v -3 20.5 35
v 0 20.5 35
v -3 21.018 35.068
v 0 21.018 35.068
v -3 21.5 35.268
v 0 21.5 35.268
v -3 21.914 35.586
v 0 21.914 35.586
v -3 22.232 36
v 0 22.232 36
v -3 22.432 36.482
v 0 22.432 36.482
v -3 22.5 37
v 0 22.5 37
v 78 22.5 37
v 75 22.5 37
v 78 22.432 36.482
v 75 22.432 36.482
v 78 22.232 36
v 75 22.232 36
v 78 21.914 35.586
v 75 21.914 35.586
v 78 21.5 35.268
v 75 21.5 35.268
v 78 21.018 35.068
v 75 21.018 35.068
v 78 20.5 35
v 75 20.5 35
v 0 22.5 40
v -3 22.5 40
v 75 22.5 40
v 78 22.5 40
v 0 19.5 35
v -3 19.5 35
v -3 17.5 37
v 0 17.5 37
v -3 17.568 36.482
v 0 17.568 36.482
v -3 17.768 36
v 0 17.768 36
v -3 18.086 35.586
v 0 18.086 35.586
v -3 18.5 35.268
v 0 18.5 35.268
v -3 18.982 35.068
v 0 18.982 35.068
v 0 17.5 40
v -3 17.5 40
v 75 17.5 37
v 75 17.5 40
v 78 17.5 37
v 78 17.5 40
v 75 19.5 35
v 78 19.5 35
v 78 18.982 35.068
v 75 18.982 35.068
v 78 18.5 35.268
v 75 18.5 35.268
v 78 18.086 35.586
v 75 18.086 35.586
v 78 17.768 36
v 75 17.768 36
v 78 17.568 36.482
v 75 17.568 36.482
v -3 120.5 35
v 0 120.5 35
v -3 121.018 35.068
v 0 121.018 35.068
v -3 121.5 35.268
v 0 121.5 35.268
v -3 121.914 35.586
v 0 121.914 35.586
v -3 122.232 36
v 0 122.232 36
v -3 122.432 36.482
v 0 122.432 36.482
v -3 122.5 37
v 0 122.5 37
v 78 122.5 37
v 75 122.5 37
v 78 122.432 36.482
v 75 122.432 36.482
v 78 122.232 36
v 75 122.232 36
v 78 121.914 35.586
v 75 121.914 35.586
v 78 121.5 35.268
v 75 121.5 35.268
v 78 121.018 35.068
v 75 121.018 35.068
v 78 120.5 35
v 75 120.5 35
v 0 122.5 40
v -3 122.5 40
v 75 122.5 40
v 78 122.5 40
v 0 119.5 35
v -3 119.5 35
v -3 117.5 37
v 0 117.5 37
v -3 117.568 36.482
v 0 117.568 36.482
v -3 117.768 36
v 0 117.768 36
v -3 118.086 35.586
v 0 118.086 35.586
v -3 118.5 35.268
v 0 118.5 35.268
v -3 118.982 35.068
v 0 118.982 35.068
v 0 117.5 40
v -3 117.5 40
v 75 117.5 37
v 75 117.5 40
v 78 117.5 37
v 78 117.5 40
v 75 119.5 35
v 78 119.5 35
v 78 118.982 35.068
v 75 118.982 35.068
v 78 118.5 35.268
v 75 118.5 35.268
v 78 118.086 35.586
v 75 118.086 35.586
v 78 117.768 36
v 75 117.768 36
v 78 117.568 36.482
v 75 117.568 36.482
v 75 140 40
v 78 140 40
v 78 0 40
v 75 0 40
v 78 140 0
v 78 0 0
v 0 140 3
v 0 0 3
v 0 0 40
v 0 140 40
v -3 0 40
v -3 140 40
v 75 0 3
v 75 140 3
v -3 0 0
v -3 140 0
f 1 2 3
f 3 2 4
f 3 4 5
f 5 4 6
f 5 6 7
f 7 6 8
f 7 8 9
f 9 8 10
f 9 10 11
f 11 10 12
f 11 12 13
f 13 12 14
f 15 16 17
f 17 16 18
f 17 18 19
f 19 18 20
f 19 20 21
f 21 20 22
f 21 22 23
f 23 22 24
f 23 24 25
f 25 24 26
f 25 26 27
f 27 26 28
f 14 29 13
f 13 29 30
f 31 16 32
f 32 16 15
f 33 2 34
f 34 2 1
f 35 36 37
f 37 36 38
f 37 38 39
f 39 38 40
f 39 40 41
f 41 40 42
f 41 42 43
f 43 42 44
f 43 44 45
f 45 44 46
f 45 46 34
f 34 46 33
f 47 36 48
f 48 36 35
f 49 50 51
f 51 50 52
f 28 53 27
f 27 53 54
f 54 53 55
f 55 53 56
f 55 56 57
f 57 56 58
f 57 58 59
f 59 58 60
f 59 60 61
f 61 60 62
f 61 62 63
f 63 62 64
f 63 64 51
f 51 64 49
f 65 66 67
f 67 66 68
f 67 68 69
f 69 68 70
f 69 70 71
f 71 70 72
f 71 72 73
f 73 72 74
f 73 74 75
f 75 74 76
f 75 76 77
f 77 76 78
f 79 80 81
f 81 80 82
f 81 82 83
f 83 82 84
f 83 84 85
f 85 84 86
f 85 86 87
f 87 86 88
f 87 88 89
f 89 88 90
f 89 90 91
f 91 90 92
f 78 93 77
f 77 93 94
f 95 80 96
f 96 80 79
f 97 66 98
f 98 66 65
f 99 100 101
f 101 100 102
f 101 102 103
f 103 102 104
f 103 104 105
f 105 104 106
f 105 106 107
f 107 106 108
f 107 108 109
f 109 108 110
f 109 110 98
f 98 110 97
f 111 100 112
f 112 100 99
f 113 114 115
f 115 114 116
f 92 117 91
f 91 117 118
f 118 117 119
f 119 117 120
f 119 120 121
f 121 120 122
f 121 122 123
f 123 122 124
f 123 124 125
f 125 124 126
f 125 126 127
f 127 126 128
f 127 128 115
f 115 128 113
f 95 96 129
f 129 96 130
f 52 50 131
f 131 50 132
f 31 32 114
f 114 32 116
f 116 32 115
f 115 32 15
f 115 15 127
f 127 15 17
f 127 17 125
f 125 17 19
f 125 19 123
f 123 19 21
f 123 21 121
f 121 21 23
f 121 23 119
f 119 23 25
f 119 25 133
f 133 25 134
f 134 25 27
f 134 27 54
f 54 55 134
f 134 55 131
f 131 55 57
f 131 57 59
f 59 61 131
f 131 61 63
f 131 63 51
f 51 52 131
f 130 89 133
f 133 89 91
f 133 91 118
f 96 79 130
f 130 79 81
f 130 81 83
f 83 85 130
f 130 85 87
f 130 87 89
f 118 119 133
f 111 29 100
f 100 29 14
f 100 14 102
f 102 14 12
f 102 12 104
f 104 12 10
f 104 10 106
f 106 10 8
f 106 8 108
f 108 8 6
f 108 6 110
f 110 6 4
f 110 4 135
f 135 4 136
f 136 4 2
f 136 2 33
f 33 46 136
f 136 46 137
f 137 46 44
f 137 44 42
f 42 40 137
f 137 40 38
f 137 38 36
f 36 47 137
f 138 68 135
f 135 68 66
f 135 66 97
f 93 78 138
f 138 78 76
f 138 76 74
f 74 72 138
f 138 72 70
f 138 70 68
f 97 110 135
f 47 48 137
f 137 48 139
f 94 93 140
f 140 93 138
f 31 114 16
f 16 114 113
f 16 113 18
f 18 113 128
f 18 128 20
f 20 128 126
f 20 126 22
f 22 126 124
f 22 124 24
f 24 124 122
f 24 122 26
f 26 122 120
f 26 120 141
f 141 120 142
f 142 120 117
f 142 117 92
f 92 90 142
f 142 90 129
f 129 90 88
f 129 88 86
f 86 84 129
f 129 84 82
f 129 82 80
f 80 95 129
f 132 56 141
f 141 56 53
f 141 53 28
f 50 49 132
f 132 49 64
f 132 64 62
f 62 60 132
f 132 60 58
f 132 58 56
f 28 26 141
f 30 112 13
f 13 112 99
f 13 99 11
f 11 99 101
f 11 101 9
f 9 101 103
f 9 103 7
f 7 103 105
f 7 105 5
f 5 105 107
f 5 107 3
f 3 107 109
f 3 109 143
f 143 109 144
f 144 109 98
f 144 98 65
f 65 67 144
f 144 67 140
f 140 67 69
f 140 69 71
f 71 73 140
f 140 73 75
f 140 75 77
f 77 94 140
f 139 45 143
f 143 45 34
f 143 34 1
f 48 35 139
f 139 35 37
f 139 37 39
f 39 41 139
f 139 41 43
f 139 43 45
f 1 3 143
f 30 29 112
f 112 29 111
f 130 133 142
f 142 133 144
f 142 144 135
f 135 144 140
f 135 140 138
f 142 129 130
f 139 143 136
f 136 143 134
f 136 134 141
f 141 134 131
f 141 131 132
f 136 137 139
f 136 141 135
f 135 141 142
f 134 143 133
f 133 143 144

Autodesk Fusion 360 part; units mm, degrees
sketch "Sketch1" plane through (0, 0, 0) normal (0, 0, 1) x (1, 0, 0)
  line L0 (0, 0) -> (75, 0)
  line L1 (75, 0) -> (75, 140)
  line L2 (75, 140) -> (0, 140)
  line L3 (0, 140) -> (0, 0)
  line L4 (0, 140) -> (-3, 140)
  line L5 (-3, 140) -> (-3, 0)
  line L6 (-3, 0) -> (0, 0)
  line L7 (0, 0) -> (0, 140)
  line L8 (75, 140) -> (78, 140)
  line L9 (78, 140) -> (78, 0)
  line L10 (78, 0) -> (75, 0)
  line L11 (75, 0) -> (75, 140)
  dimension "d1" = 140
  dimension "d2" = 75
  dimension "d3" = 3
  dimension "d4" = 3
extrude "Extrude1" add sketch "Sketch1" along normal blind 3 contours L0 L1 L2 L3 L7 L11
sketch "Sketch2" plane through (0, 0, 0) normal (0, 0, 1) x (1, 0, 0)
extrude "Extrude2" add sketch "Sketch1" along normal blind 40 contours L3 L4 L5 L6 L7 | L1 L8 L9 L10 L11
sketch "Sketch3" plane through (78, 0, 0) normal (1, 0, 0) x (0, 1, 0)
  line L0 (0, 0) -> (140, 0)
  line L1 (140, 0) -> (140, 40)
  line L2 (140, 40) -> (0, 40)
  line L3 (0, 40) -> (0, 0)
  line L4 (140, 0) -> (0, 0)
  line L5 (70, 40) -> (70, 0) construction
  line L6 (17.5, 40) -> (22.5, 40)
  line L7 (22.5, 40) -> (22.5, 37)
  line L8 (20.5, 35) -> (19.5, 35)
  line L9 (17.5, 37) -> (17.5, 40)
  arc A0 (17.5, 37) -> (19.5, 35) centre (19.5, 37) ccw
  arc A1 (20.5, 35) -> (22.5, 37) centre (20.5, 37) ccw
  line L10 (20, 40) -> (20, 35) construction
  line L11 (117.5, 40) -> (122.5, 40)
  line L12 (122.5, 40) -> (122.5, 37)
  line L13 (120.5, 35) -> (119.5, 35)
  line L14 (117.5, 37) -> (117.5, 40)
  arc A2 (117.5, 37) -> (119.5, 35) centre (119.5, 37) ccw
  arc A3 (120.5, 35) -> (122.5, 37) centre (120.5, 37) ccw
  line L15 (120, 35) -> (120, 40) construction
  point P0 (17.5, 35)
  point P1 (117.5, 35)
  dimension "d18" = 5
  dimension "d19" = 5
  dimension "d20" = 2
  dimension "d21" = 2
  dimension "d23" = 5
  dimension "d24" = 2
  dimension "d25" = 2
  dimension "d26" = 5
  dimension "d27" = 100
extrude "Extrude3" cut sketch "Sketch3" along normal mid plane 200 contours L2 L6 L7 L8 L9 A0 A1 | L2 L11 L12 L13 L14 A2 A3
